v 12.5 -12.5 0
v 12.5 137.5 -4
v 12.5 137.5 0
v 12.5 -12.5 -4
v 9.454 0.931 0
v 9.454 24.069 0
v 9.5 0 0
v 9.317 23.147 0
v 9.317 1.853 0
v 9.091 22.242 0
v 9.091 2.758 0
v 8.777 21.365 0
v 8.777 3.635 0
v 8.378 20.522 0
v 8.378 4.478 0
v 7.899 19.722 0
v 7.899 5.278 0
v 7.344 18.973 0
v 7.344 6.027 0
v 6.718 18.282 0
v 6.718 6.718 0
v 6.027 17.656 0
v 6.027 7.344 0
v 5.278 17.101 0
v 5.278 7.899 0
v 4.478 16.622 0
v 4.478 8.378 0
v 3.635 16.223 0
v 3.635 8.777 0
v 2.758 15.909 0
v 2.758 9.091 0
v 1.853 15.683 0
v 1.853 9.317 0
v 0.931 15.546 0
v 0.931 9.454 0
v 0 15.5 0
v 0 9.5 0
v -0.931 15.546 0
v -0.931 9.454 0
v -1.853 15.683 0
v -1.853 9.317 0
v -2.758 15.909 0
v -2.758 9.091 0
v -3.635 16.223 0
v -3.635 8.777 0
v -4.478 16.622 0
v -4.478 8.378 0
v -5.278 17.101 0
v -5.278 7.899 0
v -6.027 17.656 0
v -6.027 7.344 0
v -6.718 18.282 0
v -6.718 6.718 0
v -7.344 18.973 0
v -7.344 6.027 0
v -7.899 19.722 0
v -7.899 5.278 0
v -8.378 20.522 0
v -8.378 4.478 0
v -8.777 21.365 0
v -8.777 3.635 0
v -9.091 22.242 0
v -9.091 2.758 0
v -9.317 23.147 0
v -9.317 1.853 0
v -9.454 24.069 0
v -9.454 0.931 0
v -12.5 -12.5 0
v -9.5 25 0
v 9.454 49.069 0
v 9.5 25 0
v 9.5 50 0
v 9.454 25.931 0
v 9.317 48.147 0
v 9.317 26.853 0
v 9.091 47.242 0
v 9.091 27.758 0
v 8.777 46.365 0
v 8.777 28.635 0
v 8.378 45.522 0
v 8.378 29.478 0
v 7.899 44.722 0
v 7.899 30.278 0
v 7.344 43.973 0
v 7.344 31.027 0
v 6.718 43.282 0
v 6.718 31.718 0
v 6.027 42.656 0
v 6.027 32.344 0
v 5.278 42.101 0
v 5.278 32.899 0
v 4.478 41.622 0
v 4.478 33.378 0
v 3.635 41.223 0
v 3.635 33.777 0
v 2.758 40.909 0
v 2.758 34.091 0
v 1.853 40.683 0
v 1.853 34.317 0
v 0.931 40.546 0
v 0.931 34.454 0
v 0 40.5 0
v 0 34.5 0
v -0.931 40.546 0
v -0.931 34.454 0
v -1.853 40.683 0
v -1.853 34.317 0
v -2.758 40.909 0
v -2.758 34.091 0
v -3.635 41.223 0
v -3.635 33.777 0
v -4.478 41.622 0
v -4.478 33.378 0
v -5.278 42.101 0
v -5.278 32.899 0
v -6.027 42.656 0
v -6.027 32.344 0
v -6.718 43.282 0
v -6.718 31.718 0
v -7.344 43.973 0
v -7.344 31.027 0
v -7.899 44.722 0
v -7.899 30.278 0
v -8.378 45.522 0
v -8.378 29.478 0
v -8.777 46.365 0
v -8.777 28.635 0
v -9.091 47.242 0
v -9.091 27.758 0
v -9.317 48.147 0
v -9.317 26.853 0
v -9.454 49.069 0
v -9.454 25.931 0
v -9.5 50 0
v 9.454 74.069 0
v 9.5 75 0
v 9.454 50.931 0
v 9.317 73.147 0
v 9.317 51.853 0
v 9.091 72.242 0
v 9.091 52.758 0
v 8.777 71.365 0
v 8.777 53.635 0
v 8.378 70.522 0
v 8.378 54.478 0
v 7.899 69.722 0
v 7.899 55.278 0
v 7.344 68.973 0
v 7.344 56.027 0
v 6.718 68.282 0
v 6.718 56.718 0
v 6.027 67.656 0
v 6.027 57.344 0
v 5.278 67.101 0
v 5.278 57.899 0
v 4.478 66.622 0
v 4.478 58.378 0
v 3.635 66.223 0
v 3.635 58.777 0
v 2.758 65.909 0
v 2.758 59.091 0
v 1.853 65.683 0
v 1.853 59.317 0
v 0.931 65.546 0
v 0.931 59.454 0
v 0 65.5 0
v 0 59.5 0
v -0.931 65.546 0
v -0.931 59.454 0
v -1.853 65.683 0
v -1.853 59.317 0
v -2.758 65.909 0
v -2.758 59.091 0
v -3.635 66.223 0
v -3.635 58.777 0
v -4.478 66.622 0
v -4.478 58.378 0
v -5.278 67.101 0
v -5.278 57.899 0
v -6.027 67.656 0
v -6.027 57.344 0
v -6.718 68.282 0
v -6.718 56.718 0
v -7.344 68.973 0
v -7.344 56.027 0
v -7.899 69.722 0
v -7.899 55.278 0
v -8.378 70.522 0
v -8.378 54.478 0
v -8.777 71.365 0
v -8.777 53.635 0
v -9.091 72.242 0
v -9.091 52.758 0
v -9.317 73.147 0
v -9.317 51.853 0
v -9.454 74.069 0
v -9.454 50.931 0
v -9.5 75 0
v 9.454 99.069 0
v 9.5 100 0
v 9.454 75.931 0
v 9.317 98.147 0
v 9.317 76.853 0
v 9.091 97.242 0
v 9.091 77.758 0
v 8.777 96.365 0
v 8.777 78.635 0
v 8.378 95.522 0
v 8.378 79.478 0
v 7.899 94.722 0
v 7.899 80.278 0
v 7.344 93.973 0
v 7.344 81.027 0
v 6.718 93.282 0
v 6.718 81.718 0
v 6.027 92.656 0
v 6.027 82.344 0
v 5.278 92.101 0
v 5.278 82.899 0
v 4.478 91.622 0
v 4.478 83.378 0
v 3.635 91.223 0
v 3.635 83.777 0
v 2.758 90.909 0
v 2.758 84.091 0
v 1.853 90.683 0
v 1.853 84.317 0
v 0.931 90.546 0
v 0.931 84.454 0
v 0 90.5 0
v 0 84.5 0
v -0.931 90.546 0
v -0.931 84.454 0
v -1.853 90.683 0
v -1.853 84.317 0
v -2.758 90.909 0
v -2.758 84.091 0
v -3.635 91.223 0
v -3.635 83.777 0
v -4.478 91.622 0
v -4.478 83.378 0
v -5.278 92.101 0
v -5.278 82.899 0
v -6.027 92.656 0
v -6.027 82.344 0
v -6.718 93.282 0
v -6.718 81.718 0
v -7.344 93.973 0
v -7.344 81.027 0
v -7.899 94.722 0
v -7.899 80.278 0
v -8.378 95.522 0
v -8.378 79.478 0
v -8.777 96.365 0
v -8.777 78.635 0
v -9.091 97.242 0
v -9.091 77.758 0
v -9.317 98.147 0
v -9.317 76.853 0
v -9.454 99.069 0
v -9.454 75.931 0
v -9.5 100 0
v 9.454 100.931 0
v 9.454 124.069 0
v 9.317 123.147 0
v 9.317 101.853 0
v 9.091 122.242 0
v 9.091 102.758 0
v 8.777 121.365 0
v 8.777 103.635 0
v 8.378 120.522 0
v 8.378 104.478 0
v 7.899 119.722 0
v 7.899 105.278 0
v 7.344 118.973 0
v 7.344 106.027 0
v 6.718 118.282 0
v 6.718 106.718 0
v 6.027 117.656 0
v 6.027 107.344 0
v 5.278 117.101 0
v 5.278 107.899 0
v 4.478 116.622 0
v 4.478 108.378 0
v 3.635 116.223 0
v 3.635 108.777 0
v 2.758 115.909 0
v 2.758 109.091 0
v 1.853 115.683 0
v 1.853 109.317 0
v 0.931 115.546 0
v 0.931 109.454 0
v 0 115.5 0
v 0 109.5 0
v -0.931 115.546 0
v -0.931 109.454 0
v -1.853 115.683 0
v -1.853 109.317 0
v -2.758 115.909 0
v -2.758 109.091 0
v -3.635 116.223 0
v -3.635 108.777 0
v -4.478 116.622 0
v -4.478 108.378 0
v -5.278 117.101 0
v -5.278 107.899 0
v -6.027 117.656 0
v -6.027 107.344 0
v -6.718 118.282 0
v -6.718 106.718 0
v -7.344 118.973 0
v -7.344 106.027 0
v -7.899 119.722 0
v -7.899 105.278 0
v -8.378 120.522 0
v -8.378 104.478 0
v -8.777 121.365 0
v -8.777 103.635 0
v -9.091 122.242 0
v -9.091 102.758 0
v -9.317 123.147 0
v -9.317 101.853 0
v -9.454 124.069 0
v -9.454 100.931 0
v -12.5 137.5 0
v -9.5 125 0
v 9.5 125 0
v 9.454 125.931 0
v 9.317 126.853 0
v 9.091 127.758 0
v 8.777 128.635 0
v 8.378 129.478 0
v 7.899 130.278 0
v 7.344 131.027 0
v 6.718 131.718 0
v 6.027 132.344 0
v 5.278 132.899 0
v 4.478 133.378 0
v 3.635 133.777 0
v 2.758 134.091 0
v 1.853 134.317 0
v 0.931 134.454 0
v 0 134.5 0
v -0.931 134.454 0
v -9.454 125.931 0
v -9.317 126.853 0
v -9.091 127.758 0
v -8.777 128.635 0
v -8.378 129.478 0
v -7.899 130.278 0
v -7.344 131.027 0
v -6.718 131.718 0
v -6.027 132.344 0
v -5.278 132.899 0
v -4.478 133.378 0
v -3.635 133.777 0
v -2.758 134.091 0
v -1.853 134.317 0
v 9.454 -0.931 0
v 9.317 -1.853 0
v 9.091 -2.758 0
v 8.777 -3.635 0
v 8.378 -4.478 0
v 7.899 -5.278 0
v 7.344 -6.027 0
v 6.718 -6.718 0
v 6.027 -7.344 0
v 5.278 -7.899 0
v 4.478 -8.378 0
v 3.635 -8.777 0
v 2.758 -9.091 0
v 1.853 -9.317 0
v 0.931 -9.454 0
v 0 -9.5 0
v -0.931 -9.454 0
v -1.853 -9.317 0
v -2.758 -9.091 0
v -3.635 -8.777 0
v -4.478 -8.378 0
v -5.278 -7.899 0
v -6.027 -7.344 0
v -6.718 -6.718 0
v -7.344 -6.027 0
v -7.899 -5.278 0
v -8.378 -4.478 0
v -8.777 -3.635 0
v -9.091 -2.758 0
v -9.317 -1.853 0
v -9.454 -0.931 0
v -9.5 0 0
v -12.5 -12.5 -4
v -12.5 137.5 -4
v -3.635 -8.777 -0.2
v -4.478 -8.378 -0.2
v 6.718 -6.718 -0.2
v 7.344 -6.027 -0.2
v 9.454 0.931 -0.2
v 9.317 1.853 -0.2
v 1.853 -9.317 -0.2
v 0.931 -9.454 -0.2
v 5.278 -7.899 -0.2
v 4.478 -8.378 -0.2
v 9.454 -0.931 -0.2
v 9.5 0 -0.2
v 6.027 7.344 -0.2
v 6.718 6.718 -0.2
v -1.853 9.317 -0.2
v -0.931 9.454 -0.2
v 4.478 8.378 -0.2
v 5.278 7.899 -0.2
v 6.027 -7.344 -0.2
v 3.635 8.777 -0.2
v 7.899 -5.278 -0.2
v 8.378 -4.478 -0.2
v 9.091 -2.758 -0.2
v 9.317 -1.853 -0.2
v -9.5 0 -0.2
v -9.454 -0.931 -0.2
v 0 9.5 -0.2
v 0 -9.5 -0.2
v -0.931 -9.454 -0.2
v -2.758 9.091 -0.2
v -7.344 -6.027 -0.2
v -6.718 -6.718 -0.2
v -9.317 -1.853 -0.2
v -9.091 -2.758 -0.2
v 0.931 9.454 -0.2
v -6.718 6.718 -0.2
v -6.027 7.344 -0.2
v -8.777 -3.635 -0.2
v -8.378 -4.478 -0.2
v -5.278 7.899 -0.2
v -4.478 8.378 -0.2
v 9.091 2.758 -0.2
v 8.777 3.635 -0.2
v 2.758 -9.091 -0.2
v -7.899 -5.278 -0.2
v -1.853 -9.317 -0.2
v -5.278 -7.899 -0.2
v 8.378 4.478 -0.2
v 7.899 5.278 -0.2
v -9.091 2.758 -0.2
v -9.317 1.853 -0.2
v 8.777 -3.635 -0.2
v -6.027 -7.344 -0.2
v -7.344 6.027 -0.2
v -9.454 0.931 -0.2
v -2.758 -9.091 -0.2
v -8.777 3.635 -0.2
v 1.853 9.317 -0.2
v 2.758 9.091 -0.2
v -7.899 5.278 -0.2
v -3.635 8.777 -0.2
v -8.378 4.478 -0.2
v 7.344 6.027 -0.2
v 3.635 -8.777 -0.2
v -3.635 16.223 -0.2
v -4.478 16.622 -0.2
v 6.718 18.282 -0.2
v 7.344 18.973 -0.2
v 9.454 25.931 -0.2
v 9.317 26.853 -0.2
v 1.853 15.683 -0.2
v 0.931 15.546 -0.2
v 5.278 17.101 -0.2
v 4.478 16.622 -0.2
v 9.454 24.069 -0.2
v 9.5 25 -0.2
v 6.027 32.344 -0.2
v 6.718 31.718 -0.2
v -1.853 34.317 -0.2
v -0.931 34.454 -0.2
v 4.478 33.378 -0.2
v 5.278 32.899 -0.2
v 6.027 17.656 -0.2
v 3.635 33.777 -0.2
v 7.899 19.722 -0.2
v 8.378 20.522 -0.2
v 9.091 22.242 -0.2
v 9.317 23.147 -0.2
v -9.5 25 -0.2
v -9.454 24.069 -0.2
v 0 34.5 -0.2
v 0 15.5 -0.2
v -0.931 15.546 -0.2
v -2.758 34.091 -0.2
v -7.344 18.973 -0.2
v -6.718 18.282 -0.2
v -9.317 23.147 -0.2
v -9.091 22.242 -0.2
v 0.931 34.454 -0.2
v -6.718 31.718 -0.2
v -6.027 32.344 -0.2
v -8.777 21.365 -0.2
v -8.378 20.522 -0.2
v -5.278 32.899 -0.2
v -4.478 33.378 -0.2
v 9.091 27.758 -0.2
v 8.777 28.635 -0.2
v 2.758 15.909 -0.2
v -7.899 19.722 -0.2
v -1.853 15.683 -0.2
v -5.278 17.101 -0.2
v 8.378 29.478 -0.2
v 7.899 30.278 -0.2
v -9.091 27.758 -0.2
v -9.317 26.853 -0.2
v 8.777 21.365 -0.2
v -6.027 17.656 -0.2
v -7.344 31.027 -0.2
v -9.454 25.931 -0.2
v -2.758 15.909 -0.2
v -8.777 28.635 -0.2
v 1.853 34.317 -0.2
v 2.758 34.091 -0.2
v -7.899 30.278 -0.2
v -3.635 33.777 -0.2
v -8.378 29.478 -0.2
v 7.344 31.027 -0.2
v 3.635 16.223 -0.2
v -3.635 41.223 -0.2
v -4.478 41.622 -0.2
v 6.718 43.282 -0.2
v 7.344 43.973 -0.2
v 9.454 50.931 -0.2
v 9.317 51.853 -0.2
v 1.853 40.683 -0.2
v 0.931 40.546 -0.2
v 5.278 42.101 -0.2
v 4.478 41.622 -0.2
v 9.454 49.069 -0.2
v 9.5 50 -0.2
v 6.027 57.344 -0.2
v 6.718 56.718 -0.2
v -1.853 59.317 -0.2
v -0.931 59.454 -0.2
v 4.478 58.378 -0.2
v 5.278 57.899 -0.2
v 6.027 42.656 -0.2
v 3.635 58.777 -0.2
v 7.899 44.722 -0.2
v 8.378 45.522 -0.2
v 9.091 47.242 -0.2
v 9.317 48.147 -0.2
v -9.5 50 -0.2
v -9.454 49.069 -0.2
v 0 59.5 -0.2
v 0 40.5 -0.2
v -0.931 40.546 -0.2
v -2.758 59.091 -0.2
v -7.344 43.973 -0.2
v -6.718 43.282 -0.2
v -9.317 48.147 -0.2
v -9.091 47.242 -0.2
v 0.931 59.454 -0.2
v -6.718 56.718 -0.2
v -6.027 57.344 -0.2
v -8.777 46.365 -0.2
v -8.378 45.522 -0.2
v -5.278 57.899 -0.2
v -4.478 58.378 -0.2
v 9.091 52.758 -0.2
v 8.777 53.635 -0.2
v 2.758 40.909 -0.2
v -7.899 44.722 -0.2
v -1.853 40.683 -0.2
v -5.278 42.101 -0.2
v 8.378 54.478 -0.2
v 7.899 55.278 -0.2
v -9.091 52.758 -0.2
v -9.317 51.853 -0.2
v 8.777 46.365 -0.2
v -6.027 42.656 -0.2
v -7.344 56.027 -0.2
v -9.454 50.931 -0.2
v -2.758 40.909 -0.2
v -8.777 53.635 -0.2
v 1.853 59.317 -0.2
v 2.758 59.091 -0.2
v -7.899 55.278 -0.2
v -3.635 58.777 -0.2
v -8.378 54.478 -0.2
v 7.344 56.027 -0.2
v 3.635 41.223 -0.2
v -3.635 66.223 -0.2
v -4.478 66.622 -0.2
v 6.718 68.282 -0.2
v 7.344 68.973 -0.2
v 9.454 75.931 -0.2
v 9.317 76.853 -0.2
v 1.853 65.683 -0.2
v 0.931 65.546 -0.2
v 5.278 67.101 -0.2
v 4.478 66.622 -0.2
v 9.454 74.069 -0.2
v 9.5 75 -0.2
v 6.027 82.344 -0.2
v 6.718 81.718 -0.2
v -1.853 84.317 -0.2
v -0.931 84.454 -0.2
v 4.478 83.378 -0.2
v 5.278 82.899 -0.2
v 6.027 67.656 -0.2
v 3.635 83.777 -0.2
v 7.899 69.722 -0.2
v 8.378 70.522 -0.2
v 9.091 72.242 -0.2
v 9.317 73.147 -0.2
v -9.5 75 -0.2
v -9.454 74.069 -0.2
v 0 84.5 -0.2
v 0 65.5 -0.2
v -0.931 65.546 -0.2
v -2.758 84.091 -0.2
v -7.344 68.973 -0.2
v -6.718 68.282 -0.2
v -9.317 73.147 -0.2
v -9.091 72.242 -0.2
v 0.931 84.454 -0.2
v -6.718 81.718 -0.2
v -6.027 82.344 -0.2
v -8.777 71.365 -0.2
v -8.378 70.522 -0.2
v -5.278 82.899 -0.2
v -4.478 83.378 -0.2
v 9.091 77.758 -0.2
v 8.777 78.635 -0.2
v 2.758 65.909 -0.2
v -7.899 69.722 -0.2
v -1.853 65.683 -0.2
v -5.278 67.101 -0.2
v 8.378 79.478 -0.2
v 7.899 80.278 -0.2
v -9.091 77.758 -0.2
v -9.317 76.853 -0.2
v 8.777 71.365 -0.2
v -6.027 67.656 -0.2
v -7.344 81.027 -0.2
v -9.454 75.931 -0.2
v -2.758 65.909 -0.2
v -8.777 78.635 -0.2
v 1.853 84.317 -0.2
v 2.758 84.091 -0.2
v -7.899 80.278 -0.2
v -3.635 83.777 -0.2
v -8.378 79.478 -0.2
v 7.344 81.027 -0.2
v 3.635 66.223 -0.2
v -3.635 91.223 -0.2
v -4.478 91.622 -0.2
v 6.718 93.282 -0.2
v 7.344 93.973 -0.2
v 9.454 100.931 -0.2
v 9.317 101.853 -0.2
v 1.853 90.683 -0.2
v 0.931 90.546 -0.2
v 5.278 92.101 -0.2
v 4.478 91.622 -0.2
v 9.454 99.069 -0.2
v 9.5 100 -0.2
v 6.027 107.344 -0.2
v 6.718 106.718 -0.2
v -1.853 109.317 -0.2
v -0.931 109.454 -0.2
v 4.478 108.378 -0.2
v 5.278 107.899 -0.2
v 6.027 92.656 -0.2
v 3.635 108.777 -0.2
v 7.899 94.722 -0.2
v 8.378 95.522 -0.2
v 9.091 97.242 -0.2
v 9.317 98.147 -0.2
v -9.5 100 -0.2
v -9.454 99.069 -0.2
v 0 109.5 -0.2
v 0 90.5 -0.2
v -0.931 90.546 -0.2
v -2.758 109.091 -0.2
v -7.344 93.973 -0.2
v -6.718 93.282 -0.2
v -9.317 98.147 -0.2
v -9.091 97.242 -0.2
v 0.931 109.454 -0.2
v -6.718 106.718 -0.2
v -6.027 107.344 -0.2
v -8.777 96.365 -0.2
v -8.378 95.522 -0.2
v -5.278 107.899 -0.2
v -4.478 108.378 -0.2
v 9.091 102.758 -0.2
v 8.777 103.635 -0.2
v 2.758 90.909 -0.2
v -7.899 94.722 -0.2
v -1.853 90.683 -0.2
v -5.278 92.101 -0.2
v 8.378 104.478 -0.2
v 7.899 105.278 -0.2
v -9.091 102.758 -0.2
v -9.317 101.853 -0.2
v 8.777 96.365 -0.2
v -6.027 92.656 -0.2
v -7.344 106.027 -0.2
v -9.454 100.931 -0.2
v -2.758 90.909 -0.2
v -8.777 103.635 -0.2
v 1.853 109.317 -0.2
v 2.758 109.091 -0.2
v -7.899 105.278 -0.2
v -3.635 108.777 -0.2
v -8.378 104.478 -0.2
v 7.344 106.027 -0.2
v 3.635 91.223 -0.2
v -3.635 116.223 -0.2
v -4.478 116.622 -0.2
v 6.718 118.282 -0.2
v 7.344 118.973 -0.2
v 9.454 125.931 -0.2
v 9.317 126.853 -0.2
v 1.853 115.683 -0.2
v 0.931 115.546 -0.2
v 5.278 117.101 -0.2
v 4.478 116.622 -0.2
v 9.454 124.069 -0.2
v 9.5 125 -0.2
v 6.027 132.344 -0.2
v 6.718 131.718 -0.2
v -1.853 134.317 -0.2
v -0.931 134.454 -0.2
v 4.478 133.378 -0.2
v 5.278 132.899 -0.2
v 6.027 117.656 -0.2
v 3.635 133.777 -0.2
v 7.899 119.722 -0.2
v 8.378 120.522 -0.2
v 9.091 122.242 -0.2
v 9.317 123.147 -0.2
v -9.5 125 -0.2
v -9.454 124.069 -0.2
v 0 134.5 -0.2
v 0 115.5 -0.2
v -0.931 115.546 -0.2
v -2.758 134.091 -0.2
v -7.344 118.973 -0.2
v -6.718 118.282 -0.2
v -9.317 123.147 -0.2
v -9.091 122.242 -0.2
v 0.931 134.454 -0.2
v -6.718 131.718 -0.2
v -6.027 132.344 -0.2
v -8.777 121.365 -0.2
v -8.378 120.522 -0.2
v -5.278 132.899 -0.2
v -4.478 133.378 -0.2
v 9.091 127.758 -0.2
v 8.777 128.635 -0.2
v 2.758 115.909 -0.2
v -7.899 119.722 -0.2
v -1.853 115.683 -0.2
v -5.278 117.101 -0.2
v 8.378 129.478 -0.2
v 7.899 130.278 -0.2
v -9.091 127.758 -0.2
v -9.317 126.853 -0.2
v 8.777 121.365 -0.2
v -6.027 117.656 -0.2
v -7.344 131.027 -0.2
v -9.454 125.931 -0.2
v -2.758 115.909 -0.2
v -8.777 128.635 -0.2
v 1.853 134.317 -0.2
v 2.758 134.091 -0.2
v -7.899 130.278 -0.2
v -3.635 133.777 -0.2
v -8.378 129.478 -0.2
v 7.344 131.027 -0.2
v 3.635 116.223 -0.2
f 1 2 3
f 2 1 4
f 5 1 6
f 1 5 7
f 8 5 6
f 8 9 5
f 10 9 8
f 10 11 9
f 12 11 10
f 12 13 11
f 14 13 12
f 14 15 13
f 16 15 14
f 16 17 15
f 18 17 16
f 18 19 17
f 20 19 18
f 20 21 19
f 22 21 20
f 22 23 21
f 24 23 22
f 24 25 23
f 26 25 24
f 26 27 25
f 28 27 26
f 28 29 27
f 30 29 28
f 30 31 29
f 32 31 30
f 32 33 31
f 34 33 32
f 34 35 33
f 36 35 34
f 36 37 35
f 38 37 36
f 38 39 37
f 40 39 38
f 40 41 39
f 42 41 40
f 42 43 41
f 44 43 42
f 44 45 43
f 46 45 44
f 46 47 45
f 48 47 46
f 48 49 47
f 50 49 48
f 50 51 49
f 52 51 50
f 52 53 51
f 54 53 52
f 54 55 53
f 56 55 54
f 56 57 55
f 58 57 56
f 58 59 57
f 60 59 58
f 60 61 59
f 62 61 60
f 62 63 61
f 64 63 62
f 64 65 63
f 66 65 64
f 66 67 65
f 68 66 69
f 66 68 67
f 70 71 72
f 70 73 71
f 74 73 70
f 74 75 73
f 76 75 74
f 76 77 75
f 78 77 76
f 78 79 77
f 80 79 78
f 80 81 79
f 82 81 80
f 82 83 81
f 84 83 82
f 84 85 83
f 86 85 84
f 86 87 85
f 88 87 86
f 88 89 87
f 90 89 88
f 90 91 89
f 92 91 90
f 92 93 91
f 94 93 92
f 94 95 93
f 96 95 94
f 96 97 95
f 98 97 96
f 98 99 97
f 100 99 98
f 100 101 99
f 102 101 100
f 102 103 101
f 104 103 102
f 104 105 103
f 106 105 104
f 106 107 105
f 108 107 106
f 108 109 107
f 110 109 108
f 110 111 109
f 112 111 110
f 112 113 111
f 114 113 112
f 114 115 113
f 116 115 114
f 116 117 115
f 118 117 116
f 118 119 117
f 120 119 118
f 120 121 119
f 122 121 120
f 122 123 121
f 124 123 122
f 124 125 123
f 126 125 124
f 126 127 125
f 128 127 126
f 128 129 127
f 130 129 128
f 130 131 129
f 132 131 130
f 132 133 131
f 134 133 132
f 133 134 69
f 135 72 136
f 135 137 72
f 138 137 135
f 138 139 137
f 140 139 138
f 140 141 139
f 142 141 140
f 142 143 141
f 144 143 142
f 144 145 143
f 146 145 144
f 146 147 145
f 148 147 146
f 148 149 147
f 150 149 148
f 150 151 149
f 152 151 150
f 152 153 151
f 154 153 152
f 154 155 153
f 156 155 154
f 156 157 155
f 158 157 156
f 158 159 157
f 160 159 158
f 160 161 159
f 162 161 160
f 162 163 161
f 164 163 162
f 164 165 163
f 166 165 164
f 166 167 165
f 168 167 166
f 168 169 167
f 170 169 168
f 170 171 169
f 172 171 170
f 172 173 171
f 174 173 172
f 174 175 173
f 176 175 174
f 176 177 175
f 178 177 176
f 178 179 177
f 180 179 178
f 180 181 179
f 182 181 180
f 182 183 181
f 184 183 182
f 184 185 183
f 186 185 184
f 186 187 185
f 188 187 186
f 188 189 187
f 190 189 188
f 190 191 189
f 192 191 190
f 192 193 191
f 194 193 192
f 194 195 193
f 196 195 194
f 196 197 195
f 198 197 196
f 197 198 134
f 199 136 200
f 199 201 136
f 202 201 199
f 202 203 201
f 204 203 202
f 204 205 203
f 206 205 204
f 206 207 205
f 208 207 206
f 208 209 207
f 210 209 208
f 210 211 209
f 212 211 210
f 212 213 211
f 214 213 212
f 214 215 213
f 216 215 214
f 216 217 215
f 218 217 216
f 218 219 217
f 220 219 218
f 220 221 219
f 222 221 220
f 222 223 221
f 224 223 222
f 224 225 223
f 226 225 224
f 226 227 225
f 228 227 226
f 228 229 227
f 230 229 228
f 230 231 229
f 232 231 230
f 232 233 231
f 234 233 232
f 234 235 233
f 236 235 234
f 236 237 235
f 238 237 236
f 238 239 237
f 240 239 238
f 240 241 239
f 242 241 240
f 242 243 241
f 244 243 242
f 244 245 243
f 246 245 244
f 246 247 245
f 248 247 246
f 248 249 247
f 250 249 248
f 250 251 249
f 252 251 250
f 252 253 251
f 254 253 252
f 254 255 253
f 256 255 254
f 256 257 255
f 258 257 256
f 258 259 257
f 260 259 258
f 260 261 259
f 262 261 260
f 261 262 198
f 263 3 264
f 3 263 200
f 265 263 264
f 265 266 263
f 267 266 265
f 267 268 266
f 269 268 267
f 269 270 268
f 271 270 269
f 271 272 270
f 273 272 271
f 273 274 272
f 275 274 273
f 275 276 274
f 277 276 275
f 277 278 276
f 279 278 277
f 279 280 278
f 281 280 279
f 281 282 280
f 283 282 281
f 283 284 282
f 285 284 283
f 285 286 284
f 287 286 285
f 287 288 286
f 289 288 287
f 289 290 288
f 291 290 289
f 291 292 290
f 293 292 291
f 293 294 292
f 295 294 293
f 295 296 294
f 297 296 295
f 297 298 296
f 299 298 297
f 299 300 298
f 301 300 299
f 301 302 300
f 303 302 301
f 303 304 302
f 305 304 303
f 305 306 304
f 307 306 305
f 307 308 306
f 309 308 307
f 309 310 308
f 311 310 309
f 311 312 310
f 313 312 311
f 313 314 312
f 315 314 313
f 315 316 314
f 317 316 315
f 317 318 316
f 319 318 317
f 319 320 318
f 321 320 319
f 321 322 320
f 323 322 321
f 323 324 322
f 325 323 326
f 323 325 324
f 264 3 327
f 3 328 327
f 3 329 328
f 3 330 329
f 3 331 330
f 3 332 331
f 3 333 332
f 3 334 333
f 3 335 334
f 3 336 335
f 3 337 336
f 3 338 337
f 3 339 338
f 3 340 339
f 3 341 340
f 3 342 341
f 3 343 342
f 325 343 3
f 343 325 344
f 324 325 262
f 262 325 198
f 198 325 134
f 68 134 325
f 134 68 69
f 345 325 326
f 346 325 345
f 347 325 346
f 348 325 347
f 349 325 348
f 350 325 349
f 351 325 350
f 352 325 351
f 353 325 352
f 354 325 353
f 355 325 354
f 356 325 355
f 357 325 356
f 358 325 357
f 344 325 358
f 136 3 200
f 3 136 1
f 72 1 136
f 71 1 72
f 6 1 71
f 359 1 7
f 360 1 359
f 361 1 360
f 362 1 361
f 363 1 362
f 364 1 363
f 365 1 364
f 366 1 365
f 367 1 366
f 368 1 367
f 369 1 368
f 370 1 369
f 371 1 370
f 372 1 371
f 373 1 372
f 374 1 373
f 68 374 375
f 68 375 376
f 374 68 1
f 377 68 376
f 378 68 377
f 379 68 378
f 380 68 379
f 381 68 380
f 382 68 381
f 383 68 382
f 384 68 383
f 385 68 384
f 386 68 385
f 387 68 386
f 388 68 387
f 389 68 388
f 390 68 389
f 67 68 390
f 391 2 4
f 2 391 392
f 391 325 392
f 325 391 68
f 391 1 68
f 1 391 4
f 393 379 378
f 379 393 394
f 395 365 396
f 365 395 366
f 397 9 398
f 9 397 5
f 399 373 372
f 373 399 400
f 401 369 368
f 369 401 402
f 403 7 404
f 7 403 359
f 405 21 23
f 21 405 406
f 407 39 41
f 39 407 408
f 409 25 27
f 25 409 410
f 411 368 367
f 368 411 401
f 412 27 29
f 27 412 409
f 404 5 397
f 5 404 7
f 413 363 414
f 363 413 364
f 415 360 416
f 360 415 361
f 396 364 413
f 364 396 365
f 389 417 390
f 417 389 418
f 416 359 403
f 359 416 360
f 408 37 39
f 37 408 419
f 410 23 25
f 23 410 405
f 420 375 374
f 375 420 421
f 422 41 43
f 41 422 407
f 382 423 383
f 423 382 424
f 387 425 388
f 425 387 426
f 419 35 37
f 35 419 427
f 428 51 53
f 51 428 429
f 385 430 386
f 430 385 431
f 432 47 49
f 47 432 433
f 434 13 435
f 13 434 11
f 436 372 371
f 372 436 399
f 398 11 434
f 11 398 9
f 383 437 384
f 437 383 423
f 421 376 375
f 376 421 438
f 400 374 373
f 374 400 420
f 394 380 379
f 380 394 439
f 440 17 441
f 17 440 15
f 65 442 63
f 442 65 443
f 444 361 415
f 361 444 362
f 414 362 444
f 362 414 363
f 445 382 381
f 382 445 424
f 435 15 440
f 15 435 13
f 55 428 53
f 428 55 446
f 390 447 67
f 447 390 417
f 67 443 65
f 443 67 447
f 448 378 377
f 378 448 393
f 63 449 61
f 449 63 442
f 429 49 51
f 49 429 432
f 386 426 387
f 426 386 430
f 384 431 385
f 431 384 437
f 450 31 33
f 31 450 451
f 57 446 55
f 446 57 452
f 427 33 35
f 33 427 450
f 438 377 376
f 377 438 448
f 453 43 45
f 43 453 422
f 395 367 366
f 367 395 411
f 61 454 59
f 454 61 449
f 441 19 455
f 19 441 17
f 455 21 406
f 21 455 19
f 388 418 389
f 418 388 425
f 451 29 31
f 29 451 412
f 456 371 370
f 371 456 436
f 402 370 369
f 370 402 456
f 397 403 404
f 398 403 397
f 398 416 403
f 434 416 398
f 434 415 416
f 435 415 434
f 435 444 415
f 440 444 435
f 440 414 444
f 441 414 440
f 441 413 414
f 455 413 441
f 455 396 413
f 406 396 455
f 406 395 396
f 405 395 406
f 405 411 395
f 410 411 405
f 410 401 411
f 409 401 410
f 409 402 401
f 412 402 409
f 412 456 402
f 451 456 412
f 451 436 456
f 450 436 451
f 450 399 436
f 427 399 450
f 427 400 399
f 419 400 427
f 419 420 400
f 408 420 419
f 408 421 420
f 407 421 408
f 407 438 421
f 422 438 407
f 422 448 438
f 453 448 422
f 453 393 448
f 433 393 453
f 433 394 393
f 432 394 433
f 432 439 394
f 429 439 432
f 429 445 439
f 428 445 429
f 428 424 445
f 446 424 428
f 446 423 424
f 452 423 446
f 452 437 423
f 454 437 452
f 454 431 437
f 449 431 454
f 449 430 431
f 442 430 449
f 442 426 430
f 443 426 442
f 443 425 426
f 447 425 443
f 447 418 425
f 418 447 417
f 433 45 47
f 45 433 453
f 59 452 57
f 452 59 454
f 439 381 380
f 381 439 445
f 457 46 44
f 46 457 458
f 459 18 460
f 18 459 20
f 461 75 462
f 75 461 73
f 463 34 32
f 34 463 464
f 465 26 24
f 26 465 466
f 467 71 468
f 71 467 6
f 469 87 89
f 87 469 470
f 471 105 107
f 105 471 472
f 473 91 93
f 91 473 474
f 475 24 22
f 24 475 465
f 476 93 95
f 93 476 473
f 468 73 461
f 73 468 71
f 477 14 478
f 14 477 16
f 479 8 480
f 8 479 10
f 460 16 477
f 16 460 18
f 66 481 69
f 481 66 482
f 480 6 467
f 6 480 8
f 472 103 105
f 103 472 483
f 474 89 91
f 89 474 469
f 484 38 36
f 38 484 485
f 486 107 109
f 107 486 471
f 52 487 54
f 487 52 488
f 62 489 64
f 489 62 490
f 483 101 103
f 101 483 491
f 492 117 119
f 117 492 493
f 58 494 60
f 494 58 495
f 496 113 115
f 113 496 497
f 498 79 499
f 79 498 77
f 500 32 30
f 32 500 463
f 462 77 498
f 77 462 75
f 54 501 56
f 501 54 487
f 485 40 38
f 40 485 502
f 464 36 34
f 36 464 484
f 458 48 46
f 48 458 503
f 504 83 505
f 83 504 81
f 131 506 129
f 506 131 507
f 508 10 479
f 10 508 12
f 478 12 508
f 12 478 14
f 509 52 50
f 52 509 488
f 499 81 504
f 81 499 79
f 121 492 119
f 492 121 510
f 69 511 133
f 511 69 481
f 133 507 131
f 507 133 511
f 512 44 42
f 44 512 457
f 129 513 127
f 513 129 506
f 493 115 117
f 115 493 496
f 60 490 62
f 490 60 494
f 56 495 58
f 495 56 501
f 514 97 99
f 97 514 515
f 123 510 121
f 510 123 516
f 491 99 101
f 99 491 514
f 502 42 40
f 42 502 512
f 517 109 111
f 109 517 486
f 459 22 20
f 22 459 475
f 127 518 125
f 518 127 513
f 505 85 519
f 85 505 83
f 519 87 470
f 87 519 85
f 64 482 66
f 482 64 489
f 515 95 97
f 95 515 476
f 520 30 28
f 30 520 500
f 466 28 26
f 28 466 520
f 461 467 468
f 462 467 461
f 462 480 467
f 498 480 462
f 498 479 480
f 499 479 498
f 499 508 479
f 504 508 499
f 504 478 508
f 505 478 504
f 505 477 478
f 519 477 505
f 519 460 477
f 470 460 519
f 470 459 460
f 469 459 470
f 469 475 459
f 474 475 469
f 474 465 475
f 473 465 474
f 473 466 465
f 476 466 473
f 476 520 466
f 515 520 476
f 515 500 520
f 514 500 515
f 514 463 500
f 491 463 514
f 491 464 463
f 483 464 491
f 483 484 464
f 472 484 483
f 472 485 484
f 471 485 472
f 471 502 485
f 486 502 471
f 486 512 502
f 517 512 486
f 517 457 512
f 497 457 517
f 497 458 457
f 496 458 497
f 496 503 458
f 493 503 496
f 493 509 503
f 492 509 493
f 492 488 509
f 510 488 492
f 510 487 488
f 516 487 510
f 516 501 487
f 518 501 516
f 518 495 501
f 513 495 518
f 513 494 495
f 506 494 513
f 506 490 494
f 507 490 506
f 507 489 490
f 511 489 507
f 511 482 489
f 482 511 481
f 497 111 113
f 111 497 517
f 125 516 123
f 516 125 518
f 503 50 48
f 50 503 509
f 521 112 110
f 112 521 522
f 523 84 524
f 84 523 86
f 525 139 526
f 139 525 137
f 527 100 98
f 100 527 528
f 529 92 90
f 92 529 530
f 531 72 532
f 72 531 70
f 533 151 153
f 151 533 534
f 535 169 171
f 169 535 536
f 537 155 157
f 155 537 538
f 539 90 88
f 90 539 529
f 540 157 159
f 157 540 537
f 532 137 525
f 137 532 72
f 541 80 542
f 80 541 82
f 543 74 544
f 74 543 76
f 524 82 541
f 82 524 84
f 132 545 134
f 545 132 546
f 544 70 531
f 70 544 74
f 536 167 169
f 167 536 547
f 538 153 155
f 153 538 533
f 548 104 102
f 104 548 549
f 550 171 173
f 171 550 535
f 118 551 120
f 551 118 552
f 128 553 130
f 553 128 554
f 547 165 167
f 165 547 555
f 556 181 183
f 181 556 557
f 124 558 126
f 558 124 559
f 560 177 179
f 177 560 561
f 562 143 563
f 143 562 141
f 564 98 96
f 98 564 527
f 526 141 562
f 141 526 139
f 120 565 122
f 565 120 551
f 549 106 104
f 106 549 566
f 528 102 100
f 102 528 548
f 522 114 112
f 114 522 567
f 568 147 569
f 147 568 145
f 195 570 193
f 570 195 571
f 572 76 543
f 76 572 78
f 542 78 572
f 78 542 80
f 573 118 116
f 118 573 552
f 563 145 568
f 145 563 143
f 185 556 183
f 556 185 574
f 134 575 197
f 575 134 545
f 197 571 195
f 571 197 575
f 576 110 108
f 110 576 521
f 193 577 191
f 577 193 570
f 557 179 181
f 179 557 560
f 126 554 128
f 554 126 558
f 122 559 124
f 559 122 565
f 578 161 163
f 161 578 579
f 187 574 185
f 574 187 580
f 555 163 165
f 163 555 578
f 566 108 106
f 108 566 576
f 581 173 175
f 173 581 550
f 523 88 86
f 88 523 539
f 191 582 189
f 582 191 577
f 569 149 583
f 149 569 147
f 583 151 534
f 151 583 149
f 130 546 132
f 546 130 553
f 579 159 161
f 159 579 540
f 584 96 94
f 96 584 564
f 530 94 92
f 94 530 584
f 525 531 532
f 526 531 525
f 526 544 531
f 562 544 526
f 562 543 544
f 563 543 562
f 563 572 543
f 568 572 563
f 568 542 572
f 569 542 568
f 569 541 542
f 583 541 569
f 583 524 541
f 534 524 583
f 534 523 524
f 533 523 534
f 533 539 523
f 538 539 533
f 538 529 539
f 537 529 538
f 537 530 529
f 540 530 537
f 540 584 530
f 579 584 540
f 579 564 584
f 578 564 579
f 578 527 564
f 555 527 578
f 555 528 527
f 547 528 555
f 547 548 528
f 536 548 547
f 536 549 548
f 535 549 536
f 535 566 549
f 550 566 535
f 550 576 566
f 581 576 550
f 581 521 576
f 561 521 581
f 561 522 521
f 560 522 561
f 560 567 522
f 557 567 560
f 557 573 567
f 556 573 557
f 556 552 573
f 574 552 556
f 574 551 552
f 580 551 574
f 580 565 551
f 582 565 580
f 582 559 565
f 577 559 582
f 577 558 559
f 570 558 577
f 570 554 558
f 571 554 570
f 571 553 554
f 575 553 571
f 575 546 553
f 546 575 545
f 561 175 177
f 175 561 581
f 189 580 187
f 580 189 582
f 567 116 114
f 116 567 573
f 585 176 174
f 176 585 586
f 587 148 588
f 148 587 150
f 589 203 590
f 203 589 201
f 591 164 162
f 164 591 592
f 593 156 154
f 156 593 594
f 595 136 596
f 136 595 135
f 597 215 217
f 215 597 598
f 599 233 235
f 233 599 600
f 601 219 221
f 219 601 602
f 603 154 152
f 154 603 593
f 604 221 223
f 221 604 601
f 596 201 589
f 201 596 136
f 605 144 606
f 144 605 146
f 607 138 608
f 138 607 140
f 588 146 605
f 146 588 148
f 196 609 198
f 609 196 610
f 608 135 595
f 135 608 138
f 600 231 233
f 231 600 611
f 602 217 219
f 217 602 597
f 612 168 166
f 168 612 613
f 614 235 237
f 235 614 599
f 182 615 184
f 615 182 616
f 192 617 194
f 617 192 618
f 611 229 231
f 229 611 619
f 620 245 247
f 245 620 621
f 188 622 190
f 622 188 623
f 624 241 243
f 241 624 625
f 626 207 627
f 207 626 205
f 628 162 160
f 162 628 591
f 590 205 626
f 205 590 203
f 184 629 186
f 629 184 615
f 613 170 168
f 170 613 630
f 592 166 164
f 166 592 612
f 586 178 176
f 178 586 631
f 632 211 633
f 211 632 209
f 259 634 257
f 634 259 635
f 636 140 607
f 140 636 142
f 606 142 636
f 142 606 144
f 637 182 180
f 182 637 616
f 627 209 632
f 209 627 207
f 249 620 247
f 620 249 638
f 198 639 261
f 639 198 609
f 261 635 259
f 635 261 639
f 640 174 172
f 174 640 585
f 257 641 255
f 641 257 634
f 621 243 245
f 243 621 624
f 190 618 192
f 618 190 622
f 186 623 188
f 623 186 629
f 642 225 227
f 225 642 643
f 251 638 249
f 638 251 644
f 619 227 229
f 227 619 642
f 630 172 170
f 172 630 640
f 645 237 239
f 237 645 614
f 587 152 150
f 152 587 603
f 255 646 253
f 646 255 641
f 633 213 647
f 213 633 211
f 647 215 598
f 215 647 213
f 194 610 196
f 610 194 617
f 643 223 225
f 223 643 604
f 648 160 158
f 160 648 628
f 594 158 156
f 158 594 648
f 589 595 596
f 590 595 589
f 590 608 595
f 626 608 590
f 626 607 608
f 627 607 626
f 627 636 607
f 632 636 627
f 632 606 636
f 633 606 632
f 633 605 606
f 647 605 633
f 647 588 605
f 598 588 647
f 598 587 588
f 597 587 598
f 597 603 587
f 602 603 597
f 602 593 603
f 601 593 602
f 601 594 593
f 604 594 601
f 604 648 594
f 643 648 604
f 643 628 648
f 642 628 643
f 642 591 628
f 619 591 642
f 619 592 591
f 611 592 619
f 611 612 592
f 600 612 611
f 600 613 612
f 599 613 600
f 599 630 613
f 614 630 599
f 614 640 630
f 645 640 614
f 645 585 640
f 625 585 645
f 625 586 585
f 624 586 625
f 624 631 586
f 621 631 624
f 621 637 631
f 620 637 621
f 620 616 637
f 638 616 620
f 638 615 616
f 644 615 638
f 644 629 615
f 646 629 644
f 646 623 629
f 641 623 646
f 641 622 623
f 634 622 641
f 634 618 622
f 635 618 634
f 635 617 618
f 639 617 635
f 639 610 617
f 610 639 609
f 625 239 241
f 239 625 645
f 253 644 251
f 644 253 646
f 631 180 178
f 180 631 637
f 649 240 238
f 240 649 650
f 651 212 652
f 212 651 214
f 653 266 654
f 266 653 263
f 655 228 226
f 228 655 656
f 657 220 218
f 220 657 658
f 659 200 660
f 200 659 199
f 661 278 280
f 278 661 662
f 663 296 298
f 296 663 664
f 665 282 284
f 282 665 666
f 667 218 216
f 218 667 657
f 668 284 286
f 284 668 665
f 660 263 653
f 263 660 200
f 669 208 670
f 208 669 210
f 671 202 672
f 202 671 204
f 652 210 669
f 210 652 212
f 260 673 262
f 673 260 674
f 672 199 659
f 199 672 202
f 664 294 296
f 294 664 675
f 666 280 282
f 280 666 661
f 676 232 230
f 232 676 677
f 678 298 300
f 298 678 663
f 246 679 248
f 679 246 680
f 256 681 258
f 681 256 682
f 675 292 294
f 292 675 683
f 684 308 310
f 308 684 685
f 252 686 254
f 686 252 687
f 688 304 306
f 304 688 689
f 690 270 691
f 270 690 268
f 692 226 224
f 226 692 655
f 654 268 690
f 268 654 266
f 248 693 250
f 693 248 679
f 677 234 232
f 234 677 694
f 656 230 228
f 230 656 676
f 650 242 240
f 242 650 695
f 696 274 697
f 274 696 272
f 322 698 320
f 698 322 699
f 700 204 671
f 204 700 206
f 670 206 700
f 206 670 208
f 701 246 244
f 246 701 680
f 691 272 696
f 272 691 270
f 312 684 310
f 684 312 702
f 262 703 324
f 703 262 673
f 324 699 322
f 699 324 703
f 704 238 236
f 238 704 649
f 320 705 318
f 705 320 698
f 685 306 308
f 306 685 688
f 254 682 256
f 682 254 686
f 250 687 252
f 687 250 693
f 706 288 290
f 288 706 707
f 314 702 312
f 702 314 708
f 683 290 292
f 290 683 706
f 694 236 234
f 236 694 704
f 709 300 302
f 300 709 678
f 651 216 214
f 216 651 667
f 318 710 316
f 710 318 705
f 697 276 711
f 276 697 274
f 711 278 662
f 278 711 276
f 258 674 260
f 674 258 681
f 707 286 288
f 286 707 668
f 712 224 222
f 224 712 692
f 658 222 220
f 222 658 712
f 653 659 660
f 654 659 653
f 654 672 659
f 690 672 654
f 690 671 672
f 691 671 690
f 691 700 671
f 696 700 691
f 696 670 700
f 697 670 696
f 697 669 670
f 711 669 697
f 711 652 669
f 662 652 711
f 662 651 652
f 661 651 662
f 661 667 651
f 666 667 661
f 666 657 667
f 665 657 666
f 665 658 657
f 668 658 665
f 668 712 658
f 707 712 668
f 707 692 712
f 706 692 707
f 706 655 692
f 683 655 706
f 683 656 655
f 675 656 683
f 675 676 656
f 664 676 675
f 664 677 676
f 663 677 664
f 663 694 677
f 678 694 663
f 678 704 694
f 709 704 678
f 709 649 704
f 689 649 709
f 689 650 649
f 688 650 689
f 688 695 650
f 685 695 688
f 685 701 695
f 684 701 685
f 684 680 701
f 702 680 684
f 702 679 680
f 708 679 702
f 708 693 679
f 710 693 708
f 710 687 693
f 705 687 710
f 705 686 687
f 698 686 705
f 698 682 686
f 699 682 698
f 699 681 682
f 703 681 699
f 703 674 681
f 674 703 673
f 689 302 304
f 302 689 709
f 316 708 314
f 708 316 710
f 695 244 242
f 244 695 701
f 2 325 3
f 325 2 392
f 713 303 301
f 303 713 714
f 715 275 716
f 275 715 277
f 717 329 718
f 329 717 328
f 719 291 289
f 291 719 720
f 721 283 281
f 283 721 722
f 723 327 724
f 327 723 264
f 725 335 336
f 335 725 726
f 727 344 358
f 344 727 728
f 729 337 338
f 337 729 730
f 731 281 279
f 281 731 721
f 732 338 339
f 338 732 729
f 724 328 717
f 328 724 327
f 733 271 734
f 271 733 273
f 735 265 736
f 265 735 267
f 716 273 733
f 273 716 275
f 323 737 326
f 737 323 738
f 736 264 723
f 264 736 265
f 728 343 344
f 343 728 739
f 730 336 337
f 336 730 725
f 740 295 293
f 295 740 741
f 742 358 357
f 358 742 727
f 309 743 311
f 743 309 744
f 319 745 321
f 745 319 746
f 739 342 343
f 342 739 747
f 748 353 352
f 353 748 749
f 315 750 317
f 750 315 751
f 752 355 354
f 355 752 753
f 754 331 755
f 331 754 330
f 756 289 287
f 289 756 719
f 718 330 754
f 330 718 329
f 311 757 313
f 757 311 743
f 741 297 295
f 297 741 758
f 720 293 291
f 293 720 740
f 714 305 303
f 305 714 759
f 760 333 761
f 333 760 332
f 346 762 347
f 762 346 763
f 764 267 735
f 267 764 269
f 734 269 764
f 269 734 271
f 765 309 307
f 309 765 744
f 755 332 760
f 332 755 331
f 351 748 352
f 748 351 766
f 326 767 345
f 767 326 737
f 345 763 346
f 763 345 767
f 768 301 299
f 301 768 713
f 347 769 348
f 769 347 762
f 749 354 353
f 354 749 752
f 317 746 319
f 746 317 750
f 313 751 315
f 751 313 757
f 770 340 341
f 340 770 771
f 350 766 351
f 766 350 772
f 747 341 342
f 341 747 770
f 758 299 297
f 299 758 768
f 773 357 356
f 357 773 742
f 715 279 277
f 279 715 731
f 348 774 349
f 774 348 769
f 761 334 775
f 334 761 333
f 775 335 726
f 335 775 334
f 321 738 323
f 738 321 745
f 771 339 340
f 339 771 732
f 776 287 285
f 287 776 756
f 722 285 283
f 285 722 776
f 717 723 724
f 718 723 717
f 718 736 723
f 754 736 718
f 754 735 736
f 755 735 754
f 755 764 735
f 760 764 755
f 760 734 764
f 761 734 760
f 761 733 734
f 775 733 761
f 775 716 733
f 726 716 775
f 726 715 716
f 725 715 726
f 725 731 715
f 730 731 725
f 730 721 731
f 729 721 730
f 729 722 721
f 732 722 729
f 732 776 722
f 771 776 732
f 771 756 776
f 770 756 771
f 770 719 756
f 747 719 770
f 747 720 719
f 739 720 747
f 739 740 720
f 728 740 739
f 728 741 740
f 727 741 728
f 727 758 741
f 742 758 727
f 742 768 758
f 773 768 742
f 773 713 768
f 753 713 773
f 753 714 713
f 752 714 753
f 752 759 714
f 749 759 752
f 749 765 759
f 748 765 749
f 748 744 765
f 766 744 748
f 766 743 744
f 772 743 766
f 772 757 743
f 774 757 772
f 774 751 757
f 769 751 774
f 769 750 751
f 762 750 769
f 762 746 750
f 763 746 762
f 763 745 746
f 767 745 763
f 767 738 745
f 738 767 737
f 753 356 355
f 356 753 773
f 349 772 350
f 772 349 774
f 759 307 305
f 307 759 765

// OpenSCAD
// Generated by SolidPython 1.1.3 on 2024-01-09 10:38:46


union() {
	translate(v = [0, 0, 0.0000000000]) {
		difference() {
			translate(v = [0, 0, -2.0000000000]) {
				cube(center = true, size = [25, 25, 4]);
			}
			translate(v = [0, 0, -0.1000000000]) {
				cylinder($fn = 64, center = true, h = 0.2000000000, r = 9.5000000000);
			}
		}
	}
	translate(v = [0, 25, 0.0000000000]) {
		difference() {
			translate(v = [0, 0, -2.0000000000]) {
				cube(center = true, size = [25, 25, 4]);
			}
			translate(v = [0, 0, -0.1000000000]) {
				cylinder($fn = 64, center = true, h = 0.2000000000, r = 9.5000000000);
			}
		}
	}
	translate(v = [0, 50, 0.0000000000]) {
		difference() {
			translate(v = [0, 0, -2.0000000000]) {
				cube(center = true, size = [25, 25, 4]);
			}
			translate(v = [0, 0, -0.1000000000]) {
				cylinder($fn = 64, center = true, h = 0.2000000000, r = 9.5000000000);
			}
		}
	}
	translate(v = [0, 75, 0.0000000000]) {
		difference() {
			translate(v = [0, 0, -2.0000000000]) {
				cube(center = true, size = [25, 25, 4]);
			}
			translate(v = [0, 0, -0.1000000000]) {
				cylinder($fn = 64, center = true, h = 0.2000000000, r = 9.5000000000);
			}
		}
	}
	translate(v = [0, 100, 0.0000000000]) {
		difference() {
			translate(v = [0, 0, -2.0000000000]) {
				cube(center = true, size = [25, 25, 4]);
			}
			translate(v = [0, 0, -0.1000000000]) {
				cylinder($fn = 64, center = true, h = 0.2000000000, r = 9.5000000000);
			}
		}
	}
	translate(v = [0, 125, 0.0000000000]) {
		difference() {
			translate(v = [0, 0, -2.0000000000]) {
				cube(center = true, size = [25, 25, 4]);
			}
			translate(v = [0, 0, -0.1000000000]) {
				cylinder($fn = 64, center = true, h = 0.2000000000, r = 9.5000000000);
			}
		}
	}
}
/***********************************************
*********      SolidPython code:      **********
************************************************
 
import solid
import os
import os.path as osp
from make_device import make_unit_array

def save_model(model,base_path,base_name):
    if not osp.exists(base_path):
        os.makedirs(base_path)
    scad_path=osp.join(base_path,base_name+".scad")
    solid.scad_render_to_file(model,osp.join(scad_path))


def create_rack(item_diameter,item_thickness,rack_height,base_name,base_path,item_diameter_extra=0,item_thickness_extra=0,rack_size_extra=0,grid_size=[1,1]):
    holder_size=(item_diameter+item_diameter_extra+rack_size_extra,item_diameter+item_diameter_extra+rack_size_extra)
    dims = [*holder_size, 0]
    height= item_thickness+item_thickness_extra
    radius=(item_diameter+item_diameter_extra)/2.0
    hole = solid.cylinder(r=radius, h=height, segments=64, center = True)
    hole = solid.translate([0,0,-height/2.0])(hole)
    holder = solid.cube((*holder_size,rack_height), center = True)
    holder = solid.translate([0,0,-rack_height/2.0])(holder)
    holder = solid.difference()(holder,hole)
    holder=make_unit_array(holder,dims,grid_size)
    save_model(holder,base_path,base_name)

version="v2"
base_path="./designs/plasma_racks/4mm_well_0.5inch_diam_device_"+version+"/"
#coverslip glass holder
item_diameter=18
item_diameter_extra=1
item_thickness=0.16
item_thickness_extra=0.04
rack_height=4
rack_size_extra=6
base_name="18CIR-1_rack_"+version
grid_size=[1,6]
create_rack(item_diameter,item_thickness,rack_height,base_name,base_path,item_diameter_extra=item_diameter_extra,item_thickness_extra=item_thickness_extra,rack_size_extra=rack_size_extra,grid_size=grid_size)

#0.5" diam device holder
item_diameter=12.8
item_diameter_extra=4
item_thickness=3
item_thickness_extra=0
rack_height=6
rack_size_extra=6
base_name="0.5inch_4mm_device_rack_"+version
grid_size=[1,6]
create_rack(item_diameter,item_thickness,rack_height,base_name,base_path,item_diameter_extra=item_diameter_extra,item_thickness_extra=item_thickness_extra,rack_size_extra=rack_size_extra,grid_size=grid_size)

 
 
************************************************/
